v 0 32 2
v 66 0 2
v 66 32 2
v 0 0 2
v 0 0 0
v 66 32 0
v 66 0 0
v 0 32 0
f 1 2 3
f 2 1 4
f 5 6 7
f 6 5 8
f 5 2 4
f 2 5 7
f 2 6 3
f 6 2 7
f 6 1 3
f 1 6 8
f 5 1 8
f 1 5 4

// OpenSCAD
// Tray
thickness = 2;
width = 66;
height = 32;

cube([width, height, thickness]);
